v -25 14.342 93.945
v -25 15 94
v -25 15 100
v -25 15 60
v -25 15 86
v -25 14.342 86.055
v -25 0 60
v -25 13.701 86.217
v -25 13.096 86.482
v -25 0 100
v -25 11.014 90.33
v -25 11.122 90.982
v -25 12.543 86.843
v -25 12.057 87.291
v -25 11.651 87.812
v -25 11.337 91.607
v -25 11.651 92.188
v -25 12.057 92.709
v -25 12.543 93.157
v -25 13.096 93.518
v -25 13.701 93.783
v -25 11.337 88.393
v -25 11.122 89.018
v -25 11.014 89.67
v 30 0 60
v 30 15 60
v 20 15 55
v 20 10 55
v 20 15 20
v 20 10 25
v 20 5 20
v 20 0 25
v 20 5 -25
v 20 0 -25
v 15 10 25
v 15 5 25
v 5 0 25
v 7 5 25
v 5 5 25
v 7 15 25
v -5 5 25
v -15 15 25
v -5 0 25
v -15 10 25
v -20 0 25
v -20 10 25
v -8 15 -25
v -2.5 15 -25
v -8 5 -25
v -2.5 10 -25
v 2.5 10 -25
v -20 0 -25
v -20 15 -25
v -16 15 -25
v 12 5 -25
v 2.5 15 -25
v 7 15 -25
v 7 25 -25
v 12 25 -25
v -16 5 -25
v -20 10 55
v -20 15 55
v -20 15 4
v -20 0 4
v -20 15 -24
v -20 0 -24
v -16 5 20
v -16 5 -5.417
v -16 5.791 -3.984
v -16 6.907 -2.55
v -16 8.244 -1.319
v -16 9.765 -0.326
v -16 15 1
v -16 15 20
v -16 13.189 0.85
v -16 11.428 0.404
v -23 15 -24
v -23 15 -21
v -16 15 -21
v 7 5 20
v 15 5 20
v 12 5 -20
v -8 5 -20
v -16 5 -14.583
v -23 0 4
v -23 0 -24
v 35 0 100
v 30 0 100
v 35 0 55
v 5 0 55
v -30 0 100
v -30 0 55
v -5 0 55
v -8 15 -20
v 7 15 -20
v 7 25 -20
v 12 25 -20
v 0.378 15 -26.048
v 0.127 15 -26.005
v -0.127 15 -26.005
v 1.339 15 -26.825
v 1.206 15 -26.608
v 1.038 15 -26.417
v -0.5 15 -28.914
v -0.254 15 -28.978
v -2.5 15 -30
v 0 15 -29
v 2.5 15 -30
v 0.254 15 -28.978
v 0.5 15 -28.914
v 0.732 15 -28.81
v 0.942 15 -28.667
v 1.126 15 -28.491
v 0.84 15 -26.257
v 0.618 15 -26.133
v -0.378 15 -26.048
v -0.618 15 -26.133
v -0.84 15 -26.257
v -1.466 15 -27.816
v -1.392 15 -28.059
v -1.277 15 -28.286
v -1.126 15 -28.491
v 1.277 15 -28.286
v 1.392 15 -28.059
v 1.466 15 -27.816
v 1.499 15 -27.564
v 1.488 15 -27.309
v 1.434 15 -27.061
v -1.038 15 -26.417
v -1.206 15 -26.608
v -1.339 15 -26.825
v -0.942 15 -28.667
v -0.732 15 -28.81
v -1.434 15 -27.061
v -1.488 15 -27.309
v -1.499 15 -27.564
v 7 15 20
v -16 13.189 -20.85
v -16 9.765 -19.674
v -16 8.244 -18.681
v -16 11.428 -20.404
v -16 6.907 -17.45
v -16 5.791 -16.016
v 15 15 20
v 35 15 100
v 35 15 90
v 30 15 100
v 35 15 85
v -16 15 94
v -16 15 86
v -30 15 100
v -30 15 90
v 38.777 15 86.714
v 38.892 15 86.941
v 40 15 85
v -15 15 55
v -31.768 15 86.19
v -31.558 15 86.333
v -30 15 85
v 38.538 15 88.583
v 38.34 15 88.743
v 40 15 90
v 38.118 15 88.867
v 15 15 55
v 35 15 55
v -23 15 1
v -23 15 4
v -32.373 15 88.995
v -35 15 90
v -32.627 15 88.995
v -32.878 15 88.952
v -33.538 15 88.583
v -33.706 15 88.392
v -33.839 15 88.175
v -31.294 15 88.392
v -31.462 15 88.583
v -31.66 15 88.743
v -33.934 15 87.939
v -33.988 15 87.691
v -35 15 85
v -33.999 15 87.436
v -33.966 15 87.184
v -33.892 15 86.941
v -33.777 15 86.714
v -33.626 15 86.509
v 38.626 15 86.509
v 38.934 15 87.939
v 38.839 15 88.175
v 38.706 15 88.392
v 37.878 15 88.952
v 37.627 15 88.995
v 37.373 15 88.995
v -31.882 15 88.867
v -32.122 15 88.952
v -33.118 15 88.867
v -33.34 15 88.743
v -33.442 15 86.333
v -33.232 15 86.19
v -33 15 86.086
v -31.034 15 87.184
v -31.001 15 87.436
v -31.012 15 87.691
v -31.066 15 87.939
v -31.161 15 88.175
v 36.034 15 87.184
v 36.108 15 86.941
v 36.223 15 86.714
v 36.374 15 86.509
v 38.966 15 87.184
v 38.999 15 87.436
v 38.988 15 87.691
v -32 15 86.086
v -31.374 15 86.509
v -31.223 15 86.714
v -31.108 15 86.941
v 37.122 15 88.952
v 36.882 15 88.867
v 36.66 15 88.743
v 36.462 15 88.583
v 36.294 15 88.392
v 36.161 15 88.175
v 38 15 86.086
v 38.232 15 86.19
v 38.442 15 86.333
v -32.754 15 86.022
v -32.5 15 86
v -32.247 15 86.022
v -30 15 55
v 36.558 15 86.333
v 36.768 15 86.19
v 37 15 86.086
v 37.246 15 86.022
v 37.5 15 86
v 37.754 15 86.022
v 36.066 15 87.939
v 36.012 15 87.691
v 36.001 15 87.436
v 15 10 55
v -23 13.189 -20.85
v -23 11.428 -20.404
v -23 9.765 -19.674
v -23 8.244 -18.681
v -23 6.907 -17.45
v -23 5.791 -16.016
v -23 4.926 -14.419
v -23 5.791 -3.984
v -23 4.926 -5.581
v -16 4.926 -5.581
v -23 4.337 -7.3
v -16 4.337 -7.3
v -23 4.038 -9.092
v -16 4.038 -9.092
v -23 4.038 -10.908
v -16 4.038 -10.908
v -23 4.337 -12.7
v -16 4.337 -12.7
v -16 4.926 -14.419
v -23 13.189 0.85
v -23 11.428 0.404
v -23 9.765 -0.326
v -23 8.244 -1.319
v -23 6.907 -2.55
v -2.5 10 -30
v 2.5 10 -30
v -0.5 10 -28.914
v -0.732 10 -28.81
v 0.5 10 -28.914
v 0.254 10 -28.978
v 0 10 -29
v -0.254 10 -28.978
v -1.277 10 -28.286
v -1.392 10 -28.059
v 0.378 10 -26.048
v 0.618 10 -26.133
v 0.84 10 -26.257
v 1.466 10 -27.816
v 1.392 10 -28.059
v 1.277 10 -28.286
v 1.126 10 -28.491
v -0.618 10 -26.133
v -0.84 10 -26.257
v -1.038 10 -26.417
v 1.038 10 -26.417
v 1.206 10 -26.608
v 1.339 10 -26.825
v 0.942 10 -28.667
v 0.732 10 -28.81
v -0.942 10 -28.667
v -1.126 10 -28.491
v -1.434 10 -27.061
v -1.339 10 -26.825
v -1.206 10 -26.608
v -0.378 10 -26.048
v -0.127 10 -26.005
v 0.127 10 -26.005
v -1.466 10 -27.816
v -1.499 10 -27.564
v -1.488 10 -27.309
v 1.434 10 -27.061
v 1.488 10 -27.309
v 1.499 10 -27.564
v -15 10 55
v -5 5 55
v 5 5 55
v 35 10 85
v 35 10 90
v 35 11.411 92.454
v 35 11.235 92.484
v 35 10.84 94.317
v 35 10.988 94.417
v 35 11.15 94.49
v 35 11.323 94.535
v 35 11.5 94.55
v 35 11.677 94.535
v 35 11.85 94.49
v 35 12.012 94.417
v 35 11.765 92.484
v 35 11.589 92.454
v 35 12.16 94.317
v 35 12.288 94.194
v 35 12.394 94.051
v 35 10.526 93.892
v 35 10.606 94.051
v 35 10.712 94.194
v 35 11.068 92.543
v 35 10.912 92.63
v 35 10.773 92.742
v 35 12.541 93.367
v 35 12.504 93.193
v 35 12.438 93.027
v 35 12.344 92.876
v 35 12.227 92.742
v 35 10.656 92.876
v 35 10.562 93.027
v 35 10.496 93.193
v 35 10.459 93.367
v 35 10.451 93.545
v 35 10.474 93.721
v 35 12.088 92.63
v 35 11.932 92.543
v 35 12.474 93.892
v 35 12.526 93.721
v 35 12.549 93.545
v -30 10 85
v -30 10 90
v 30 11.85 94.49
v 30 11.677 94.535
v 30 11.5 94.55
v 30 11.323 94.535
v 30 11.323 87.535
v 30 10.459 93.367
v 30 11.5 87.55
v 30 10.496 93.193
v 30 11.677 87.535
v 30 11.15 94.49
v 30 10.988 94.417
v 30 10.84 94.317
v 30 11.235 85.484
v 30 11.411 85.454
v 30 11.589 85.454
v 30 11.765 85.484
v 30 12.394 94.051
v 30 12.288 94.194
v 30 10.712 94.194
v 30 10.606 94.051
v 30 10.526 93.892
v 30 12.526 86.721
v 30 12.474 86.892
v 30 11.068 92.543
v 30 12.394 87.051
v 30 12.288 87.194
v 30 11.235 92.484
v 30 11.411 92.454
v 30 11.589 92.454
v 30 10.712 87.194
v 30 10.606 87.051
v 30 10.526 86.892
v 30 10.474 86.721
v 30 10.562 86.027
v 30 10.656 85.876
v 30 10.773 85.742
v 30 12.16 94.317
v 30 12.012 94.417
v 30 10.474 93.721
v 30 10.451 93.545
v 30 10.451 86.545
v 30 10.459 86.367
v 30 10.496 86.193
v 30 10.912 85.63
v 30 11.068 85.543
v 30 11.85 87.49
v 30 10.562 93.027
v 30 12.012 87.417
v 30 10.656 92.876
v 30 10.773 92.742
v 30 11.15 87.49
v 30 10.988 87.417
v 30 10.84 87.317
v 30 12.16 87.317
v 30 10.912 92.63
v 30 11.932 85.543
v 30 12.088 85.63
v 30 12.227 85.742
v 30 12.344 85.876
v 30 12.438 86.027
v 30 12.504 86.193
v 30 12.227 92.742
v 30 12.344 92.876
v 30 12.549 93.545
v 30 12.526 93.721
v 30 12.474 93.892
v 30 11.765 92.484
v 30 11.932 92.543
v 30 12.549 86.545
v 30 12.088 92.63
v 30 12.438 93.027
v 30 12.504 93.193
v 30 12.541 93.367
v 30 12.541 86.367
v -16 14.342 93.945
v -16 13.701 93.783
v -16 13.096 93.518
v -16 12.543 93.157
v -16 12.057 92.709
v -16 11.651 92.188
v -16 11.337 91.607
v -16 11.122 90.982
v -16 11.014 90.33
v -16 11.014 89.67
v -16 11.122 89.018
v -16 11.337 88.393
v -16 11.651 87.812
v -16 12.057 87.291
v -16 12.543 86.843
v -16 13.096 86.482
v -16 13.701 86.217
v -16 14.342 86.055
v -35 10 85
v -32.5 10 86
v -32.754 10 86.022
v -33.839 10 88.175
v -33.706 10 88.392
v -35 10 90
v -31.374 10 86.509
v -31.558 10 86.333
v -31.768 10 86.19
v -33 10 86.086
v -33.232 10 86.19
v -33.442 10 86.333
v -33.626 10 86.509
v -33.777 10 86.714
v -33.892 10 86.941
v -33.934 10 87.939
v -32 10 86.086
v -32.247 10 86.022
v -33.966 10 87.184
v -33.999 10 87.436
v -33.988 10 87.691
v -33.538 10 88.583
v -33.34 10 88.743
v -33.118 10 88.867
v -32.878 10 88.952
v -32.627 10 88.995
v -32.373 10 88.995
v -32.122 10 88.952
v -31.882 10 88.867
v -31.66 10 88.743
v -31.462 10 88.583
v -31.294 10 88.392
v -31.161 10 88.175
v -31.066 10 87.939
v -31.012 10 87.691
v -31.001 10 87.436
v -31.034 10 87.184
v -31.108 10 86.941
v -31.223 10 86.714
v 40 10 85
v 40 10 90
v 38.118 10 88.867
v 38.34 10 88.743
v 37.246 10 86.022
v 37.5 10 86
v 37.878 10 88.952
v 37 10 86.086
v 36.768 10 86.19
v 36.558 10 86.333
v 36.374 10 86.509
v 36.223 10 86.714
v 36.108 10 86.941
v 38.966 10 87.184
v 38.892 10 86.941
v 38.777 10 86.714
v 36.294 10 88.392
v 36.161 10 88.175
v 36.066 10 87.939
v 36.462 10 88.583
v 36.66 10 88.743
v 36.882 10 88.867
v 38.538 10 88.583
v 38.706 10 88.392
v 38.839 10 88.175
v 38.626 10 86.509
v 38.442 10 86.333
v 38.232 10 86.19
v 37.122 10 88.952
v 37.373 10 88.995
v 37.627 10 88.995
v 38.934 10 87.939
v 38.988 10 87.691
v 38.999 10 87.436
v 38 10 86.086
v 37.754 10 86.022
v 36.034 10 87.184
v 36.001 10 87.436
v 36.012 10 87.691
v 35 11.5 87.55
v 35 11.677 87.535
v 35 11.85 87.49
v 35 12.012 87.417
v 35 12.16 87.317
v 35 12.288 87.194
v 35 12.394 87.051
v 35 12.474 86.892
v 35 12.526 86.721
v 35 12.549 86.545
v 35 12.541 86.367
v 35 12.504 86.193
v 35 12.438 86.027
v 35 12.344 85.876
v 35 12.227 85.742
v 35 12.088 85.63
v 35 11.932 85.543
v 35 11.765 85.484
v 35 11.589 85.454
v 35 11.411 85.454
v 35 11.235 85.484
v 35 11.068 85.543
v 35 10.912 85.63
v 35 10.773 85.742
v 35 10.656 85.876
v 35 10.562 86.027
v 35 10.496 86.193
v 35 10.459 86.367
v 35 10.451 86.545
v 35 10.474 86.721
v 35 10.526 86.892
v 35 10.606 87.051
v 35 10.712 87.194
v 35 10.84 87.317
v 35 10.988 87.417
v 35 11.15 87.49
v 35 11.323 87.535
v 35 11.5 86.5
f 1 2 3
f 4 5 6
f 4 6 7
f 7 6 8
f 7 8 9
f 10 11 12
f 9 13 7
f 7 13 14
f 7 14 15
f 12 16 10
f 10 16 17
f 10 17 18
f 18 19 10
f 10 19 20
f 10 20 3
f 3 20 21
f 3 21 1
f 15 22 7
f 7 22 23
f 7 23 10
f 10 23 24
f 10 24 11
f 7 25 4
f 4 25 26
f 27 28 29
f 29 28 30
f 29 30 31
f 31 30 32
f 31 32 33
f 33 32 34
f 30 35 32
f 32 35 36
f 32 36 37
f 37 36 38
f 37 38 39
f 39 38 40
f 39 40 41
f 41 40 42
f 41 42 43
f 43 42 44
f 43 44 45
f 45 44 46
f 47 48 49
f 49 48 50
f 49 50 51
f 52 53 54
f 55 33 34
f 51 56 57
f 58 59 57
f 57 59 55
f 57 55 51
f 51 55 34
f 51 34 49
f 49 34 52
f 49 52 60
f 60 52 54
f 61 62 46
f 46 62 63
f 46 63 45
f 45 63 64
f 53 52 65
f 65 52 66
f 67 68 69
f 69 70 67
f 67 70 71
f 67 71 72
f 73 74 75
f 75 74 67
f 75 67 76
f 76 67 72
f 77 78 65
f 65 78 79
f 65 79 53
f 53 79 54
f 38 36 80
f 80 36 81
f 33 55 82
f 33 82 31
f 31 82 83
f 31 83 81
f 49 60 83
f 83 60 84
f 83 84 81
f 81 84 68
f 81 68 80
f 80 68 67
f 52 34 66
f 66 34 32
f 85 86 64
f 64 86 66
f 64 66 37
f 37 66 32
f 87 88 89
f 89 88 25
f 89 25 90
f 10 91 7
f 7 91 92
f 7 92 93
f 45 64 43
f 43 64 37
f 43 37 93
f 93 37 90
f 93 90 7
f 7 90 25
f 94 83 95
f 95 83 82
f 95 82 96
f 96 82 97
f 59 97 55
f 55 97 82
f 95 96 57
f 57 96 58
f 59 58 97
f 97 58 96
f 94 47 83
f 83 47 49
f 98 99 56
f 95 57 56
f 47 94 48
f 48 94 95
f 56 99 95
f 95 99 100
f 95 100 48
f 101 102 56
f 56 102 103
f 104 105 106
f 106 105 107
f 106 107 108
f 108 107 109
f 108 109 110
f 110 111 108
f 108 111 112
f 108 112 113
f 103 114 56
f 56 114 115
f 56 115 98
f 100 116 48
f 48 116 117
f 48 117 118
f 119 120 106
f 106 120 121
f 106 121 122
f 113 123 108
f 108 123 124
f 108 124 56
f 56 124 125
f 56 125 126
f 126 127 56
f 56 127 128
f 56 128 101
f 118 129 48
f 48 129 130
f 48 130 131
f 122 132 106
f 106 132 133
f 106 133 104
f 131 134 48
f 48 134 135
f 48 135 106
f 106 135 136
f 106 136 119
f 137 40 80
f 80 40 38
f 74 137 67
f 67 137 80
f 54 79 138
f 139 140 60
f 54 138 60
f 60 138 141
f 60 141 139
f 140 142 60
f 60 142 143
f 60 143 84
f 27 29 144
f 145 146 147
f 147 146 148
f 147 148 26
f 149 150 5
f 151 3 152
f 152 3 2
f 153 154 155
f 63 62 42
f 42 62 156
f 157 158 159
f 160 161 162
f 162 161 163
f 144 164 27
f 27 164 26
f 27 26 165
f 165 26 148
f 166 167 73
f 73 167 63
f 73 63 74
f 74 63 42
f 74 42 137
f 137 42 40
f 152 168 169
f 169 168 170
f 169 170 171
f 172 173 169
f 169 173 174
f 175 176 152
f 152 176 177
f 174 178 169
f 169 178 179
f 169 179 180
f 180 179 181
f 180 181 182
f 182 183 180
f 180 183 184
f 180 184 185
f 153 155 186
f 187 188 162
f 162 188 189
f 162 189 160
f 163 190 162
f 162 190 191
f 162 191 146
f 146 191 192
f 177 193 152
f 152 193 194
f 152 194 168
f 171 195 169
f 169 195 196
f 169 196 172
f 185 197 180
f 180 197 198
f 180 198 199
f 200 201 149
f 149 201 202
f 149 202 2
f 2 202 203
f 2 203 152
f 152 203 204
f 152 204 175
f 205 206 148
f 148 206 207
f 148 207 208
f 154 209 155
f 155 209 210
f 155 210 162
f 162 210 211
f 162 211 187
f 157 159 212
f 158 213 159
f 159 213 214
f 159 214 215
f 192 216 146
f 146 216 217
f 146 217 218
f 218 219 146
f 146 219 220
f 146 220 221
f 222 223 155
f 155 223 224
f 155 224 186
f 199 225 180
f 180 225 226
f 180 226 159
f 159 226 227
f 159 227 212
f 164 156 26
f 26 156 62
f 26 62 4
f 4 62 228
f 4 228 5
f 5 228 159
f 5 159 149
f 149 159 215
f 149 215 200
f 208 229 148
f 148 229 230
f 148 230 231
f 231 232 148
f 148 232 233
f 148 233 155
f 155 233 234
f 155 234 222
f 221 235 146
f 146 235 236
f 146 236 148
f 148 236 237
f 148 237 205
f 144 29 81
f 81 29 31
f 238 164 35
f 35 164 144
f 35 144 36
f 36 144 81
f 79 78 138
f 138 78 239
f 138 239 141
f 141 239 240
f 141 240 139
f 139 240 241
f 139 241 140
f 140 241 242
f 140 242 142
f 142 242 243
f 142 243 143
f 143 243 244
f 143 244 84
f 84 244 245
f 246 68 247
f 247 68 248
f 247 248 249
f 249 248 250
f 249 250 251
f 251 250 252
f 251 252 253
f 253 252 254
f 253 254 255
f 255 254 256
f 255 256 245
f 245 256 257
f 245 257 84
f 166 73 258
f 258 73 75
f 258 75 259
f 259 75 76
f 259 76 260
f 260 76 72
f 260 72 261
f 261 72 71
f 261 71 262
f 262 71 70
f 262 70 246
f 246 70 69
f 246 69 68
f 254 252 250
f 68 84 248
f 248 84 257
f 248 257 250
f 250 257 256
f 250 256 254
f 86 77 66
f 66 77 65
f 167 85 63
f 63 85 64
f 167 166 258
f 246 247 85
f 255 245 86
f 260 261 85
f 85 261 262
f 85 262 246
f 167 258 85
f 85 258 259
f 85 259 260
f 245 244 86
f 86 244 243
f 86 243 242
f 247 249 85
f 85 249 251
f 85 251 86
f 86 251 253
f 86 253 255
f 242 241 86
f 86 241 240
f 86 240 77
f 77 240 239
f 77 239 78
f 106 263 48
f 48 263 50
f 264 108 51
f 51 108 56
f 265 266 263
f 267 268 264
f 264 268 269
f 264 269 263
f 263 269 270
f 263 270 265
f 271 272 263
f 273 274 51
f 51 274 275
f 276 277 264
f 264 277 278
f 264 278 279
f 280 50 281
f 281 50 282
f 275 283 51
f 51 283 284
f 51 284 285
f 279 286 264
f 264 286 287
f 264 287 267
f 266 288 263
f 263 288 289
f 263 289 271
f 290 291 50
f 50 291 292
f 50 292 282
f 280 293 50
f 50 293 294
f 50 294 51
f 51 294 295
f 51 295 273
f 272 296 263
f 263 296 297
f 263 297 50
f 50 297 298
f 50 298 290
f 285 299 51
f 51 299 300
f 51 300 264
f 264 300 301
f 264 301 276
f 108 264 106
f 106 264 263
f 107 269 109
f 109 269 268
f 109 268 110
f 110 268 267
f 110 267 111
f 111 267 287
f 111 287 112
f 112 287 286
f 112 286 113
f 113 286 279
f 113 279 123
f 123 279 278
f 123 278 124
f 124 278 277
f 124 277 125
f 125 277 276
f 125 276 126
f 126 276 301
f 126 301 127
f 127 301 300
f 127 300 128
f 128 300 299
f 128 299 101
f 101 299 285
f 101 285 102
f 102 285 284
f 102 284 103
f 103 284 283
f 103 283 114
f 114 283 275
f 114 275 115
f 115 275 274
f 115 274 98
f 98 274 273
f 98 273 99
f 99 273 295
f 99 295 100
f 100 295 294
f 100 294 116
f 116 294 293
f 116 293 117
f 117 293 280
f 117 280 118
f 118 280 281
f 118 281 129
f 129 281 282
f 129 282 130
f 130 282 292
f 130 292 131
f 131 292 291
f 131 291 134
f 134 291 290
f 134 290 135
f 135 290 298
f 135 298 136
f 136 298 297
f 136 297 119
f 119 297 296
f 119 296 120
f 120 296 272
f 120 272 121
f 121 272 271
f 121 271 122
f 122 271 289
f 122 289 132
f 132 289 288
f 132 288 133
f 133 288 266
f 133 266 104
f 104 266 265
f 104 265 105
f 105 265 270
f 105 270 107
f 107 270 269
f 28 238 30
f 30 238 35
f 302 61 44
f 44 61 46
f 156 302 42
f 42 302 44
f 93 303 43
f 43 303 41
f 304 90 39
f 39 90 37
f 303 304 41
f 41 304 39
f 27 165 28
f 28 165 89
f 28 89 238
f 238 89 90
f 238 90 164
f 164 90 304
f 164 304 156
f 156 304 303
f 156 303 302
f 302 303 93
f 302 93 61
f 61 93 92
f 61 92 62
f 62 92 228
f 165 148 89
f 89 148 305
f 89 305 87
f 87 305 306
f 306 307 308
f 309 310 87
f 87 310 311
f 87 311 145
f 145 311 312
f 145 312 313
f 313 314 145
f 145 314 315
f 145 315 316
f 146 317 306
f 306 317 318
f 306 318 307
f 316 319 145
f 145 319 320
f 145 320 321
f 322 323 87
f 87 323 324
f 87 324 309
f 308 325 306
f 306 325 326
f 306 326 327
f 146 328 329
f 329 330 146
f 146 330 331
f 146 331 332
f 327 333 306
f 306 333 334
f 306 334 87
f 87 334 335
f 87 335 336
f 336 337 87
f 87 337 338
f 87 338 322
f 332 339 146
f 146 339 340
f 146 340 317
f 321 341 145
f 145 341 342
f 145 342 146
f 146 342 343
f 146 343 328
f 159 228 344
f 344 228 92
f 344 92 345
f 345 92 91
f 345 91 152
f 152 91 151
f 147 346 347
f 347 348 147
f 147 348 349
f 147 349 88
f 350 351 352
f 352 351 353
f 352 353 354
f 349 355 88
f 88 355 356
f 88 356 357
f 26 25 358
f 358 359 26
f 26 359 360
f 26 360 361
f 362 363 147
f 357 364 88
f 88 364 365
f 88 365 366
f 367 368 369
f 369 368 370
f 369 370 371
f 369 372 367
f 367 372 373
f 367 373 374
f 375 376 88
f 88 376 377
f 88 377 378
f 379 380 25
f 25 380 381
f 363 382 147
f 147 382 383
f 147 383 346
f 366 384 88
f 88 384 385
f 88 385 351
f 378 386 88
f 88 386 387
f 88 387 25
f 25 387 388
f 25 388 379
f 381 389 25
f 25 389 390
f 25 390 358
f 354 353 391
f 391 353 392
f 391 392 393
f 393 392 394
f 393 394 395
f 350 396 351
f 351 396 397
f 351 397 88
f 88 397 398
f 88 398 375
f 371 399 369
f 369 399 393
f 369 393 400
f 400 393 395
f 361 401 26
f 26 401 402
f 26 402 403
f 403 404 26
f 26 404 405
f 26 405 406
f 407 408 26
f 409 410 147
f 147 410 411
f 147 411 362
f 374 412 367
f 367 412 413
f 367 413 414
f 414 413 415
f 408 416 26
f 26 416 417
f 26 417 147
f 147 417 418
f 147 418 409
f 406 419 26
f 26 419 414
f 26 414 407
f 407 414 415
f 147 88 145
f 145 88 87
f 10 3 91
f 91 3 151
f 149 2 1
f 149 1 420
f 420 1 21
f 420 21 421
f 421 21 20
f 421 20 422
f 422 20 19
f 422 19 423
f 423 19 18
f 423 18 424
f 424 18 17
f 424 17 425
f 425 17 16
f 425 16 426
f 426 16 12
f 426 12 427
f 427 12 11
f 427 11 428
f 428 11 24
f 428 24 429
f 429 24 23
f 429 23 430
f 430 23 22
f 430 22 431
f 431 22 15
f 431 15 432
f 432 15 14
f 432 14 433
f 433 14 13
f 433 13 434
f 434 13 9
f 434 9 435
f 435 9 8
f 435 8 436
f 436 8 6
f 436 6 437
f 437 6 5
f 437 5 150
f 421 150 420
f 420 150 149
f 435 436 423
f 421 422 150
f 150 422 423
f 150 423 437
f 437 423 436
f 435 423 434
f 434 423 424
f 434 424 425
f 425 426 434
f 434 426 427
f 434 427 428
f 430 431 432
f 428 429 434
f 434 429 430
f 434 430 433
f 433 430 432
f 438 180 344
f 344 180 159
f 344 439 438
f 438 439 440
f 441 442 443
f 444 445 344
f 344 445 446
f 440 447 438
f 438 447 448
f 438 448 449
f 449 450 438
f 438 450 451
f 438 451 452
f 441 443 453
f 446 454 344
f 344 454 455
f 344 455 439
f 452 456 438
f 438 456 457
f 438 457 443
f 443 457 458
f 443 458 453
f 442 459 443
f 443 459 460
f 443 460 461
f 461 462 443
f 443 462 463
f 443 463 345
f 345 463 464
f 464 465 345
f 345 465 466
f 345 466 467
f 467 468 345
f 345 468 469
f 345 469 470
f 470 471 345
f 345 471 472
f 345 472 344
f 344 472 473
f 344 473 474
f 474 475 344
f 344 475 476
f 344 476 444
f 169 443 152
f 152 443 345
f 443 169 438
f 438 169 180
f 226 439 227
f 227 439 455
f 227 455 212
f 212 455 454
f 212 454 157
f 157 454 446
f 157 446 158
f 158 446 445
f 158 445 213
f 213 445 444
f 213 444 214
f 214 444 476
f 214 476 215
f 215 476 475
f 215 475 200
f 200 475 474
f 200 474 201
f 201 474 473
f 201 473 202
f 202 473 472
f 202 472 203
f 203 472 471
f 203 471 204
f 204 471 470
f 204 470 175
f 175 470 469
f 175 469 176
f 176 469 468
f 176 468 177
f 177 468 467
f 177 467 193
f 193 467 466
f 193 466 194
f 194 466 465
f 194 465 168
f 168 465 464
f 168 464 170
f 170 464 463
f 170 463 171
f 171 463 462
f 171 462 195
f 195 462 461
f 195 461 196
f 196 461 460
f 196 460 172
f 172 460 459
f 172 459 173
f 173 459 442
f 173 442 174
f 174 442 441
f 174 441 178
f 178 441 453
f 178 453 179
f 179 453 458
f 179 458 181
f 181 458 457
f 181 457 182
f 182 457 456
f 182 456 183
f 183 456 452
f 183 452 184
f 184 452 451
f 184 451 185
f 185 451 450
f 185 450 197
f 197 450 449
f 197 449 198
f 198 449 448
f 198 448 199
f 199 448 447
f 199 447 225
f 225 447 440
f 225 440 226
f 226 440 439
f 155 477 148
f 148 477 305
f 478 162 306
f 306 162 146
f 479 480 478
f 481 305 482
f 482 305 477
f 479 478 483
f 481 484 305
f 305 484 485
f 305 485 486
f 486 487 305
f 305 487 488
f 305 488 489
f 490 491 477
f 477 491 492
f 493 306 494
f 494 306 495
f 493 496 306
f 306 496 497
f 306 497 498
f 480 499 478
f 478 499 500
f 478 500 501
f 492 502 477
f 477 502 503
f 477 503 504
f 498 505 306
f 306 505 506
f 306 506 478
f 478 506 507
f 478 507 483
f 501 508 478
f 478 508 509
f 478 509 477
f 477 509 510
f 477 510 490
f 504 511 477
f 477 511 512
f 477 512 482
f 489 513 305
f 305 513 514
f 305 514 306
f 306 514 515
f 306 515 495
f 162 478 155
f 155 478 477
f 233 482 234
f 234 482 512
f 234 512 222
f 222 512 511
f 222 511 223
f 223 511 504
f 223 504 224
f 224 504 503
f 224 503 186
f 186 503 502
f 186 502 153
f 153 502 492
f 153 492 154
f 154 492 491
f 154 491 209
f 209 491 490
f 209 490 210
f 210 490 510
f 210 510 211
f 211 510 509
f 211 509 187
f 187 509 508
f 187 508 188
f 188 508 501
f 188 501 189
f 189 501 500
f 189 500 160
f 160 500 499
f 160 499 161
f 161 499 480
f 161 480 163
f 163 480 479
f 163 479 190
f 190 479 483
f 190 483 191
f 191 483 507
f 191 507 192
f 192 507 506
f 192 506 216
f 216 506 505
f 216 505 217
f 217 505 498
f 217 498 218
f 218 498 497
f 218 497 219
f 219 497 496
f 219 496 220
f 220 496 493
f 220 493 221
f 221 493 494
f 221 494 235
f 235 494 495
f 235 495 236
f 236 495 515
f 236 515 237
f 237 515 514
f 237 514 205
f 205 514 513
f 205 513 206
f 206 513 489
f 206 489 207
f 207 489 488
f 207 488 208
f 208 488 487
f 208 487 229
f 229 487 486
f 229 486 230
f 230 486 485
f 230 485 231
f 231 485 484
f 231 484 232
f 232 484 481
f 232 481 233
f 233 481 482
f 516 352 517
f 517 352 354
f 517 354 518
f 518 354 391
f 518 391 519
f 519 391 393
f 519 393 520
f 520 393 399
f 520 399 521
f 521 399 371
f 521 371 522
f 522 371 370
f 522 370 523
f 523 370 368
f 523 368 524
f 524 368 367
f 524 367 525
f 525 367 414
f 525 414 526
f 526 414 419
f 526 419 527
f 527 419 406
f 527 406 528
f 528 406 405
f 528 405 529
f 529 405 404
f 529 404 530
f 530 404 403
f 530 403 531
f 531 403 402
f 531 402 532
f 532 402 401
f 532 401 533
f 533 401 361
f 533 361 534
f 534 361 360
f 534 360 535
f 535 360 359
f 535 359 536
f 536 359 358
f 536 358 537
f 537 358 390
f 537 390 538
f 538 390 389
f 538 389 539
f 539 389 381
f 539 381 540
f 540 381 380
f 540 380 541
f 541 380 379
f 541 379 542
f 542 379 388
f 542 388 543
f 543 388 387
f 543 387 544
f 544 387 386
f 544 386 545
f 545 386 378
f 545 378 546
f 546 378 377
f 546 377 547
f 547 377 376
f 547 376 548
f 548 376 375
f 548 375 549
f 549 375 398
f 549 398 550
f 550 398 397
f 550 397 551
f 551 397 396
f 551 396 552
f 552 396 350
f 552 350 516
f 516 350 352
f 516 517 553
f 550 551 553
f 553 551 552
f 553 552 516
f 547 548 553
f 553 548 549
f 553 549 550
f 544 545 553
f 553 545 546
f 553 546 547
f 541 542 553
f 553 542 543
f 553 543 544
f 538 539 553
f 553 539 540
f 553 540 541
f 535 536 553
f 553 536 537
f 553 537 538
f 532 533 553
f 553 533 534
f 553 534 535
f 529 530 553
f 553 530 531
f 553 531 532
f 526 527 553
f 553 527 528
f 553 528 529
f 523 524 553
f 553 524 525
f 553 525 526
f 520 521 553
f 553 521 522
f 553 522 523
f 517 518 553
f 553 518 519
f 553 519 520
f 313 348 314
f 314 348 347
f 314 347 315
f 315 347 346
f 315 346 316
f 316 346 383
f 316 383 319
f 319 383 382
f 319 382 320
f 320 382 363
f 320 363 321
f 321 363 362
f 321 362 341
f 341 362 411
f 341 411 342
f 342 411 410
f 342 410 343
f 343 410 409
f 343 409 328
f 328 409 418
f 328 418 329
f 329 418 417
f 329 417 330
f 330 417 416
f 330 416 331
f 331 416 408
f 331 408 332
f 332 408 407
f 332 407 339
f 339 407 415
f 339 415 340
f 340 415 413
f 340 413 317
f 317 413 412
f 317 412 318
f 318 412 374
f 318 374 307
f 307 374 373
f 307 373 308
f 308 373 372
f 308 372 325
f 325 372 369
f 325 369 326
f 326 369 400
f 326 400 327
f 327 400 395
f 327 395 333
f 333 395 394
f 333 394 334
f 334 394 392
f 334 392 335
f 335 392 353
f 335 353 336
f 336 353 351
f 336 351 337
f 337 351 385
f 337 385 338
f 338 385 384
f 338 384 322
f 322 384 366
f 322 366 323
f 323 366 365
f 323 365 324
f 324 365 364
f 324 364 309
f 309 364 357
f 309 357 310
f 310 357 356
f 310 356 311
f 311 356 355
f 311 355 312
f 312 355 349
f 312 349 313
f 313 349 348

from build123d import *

# Parameters (mm, degrees)
SKETCH1_W            = 40
SKETCH1_H            = 50
BOSS_EXTRUDE1_DEPTH  = 5
SKETCH3_W            = 5
SKETCH3_H            = 5
BOSS_EXTRUDE5_DEPTH  = 20
SKETCH3_3_W          = 15
SKETCH3_3_H          = 5
SKETCH3_3_W_2        = 5
BOSS_EXTRUDE6_DEPTH  = 10
CUT_EXTRUDE3_DEPTH   = 4
BOSS_EXTRUDE9_START  = 3
BOSS_EXTRUDE9_DEPTH  = 3
SKETCH11_W           = 5
SKETCH11_H           = 5
BOSS_EXTRUDE10_DEPTH = 5
SKETCH12_R           = 1.5
CUT_EXTRUDE4_DEPTH   = 5
SKETCH14_W           = 5
SKETCH14_H           = 5
SKETCH14_W_2         = 10
BOSS_EXTRUDE12_DEPTH = 30
SKETCH15_W           = 40
SKETCH15_H           = 15
BOSS_EXTRUDE13_DEPTH = 5
BOSS_EXTRUDE15_DEPTH = 15
BOSS_EXTRUDE17_DEPTH = 10
SKETCH18_W           = 5
SKETCH18_H           = 15
BOSS_EXTRUDE18_DEPTH = 40
BOSS_EXTRUDE19_DEPTH = 9
SKETCH20_W           = 5
SKETCH20_H           = 5
BOSS_EXTRUDE20_DEPTH = 5
SKETCH21_R           = 1.5
CUT_EXTRUDE5_DEPTH   = 5
SKETCH22_W           = 5
SKETCH22_H           = 5
BOSS_EXTRUDE21_DEPTH = 5
SKETCH23_R           = 1.5
CUT_EXTRUDE6_DEPTH   = 5
SKETCH24_R           = 1.05
CUT_EXTRUDE7_DEPTH   = 5


with BuildPart() as part:
    # Sketch1 → Boss-Extrude1 (new body)
    with BuildSketch(Plane(origin=(0, 0, 0), x_dir=(1, 0, 0), z_dir=(0, 1, 0))):
        Rectangle(SKETCH1_W, SKETCH1_H)
    extrude(amount=BOSS_EXTRUDE1_DEPTH)

    # Sketch3 → Boss-Extrude5 (add)
    with BuildSketch(Plane(origin=(0, 5, 0), x_dir=(1, 0, 0), z_dir=(0, 1, 0))):
        with Locations((9.5, 22.5)):
            Rectangle(SKETCH3_W, SKETCH3_H)
    extrude(amount=BOSS_EXTRUDE5_DEPTH)

    # Sketch3<3> → Boss-Extrude6 (add)
    with BuildSketch(Plane(origin=(0, 5, 0), x_dir=(1, 0, 0), z_dir=(0, 1, 0))):
        with Locations((-0.5, 22.5)):
            Rectangle(SKETCH3_3_W, SKETCH3_3_H)
        with Locations((17.5, -22.5)):
            Rectangle(SKETCH3_3_W_2, SKETCH3_3_H)
        Polygon((-16, -20), (-16, 25), (-20, 25), (-20, -25), (7, -25), (7, -20), align=None)
    extrude(amount=BOSS_EXTRUDE6_DEPTH)

    # Sketch8 → Cut-Extrude3 (cut)
    with BuildSketch(Plane.ZY.offset(20)):
        with BuildLine():
            Line((1, 15), (-21, 15))
            ThreePointArc((-21, 15), (-10, 4), (1, 15))
        make_face()
    extrude(amount=-CUT_EXTRUDE3_DEPTH, mode=Mode.SUBTRACT)

    # Sketch10 → Boss-Extrude9 (add)
    with BuildSketch(Plane.ZY.offset(20).offset(BOSS_EXTRUDE9_START)):
        with BuildLine():
            Line((1, 15), (4, 15))
            Line((4, 15), (4, 0))
            Line((4, 0), (-24, 0))
            Line((-24, 0), (-24, 15))
            Line((-24, 15), (-21, 15))
            ThreePointArc((-21, 15), (-10, 4), (1, 15))
        make_face()
    extrude(amount=-BOSS_EXTRUDE9_DEPTH)

    # Sketch11 → Boss-Extrude10 (add)
    with BuildSketch(Plane(origin=(0, 0, -25), x_dir=(-1, 0, 0), z_dir=(0, 0, -1))):
        with Locations((0, 12.5)):
            Rectangle(SKETCH11_W, SKETCH11_H)
    extrude(amount=BOSS_EXTRUDE10_DEPTH)

    # Sketch12 → Cut-Extrude4 (cut)
    with BuildSketch(Plane.XZ.offset(-10)):
        with Locations((0, -27.5)):
            Circle(SKETCH12_R)
    extrude(amount=-CUT_EXTRUDE4_DEPTH, mode=Mode.SUBTRACT)

    # Sketch14 → Boss-Extrude12 (add)
    with BuildSketch(Plane.XY.offset(25)):
        with Locations((17.5, 12.5)):
            Rectangle(SKETCH14_W, SKETCH14_H)
        with Locations((-17.5, 12.5)):
            Rectangle(SKETCH14_W, SKETCH14_H)
        with Locations((0, 2.5)):
            Rectangle(SKETCH14_W_2, SKETCH14_H)
    extrude(amount=BOSS_EXTRUDE12_DEPTH)

    # Sketch15 → Boss-Extrude13 (add)
    with BuildSketch(Plane.XY.offset(55)):
        with Locations((0, 7.5)):
            Rectangle(SKETCH15_W, SKETCH15_H)
    extrude(amount=BOSS_EXTRUDE13_DEPTH)

    # Sketch16 → Boss-Extrude15 (add)
    with BuildSketch(Plane(origin=(20, 0, 0), x_dir=(0, 0, -1), z_dir=(1, 0, 0))):
        Polygon((-60, 0), (-55, 0), (-55, 10), (-55, 15), (-60, 15), align=None)
    extrude(amount=BOSS_EXTRUDE15_DEPTH)

    # Sketch17 → Boss-Extrude17 (add)
    with BuildSketch(Plane.ZY.offset(20)):
        Polygon((55, 0), (60, 0), (60, 15), (55, 15), (55, 10), align=None)
    extrude(amount=BOSS_EXTRUDE17_DEPTH)

    # Sketch18 → Boss-Extrude18 (add)
    with BuildSketch(Plane.XY.offset(60)):
        with Locations((32.5, 7.5)):
            Rectangle(SKETCH18_W, SKETCH18_H)
        with Locations((-27.5, 7.5)):
            Rectangle(SKETCH18_W, SKETCH18_H)
    extrude(amount=BOSS_EXTRUDE18_DEPTH)

    # Sketch19 → Boss-Extrude19 (add)
    with BuildSketch(Plane(origin=(-25, 0, 0), x_dir=(0, 0, -1), z_dir=(1, 0, 0))):
        with BuildLine():
            Line((-86, 15), (-94, 15))
            ThreePointArc((-94, 15), (-90, 11), (-86, 15))
        make_face()
    extrude(amount=BOSS_EXTRUDE19_DEPTH)

    # Sketch20 → Boss-Extrude20 (add)
    with BuildSketch(Plane.ZY.offset(30)):
        with Locations((87.5, 12.5)):
            Rectangle(SKETCH20_W, SKETCH20_H)
    extrude(amount=BOSS_EXTRUDE20_DEPTH)

    # Sketch21 → Cut-Extrude5 (cut)
    with BuildSketch(Plane.XZ.offset(-10)):
        with Locations((-32.5, 87.5)):
            Circle(SKETCH21_R)
    extrude(amount=-CUT_EXTRUDE5_DEPTH, mode=Mode.SUBTRACT)

    # Sketch22 → Boss-Extrude21 (add)
    with BuildSketch(Plane(origin=(35, 0, 0), x_dir=(0, 0, -1), z_dir=(1, 0, 0))):
        with Locations((-87.5, 12.5)):
            Rectangle(SKETCH22_W, SKETCH22_H)
    extrude(amount=BOSS_EXTRUDE21_DEPTH)

    # Sketch23 → Cut-Extrude6 (cut)
    with BuildSketch(Plane.XZ.offset(-10)):
        with Locations((37.5, 87.5)):
            Circle(SKETCH23_R)
    extrude(amount=-CUT_EXTRUDE6_DEPTH, mode=Mode.SUBTRACT)

    # Sketch24 → Cut-Extrude7 (cut)
    with BuildSketch(Plane.ZY.offset(-30)):
        with Locations((93.5, 11.5)):
            Circle(SKETCH24_R)
        with Locations((86.5, 11.5)):
            Circle(SKETCH24_R)
    extrude(amount=-CUT_EXTRUDE7_DEPTH, mode=Mode.SUBTRACT)


solid = part.part
